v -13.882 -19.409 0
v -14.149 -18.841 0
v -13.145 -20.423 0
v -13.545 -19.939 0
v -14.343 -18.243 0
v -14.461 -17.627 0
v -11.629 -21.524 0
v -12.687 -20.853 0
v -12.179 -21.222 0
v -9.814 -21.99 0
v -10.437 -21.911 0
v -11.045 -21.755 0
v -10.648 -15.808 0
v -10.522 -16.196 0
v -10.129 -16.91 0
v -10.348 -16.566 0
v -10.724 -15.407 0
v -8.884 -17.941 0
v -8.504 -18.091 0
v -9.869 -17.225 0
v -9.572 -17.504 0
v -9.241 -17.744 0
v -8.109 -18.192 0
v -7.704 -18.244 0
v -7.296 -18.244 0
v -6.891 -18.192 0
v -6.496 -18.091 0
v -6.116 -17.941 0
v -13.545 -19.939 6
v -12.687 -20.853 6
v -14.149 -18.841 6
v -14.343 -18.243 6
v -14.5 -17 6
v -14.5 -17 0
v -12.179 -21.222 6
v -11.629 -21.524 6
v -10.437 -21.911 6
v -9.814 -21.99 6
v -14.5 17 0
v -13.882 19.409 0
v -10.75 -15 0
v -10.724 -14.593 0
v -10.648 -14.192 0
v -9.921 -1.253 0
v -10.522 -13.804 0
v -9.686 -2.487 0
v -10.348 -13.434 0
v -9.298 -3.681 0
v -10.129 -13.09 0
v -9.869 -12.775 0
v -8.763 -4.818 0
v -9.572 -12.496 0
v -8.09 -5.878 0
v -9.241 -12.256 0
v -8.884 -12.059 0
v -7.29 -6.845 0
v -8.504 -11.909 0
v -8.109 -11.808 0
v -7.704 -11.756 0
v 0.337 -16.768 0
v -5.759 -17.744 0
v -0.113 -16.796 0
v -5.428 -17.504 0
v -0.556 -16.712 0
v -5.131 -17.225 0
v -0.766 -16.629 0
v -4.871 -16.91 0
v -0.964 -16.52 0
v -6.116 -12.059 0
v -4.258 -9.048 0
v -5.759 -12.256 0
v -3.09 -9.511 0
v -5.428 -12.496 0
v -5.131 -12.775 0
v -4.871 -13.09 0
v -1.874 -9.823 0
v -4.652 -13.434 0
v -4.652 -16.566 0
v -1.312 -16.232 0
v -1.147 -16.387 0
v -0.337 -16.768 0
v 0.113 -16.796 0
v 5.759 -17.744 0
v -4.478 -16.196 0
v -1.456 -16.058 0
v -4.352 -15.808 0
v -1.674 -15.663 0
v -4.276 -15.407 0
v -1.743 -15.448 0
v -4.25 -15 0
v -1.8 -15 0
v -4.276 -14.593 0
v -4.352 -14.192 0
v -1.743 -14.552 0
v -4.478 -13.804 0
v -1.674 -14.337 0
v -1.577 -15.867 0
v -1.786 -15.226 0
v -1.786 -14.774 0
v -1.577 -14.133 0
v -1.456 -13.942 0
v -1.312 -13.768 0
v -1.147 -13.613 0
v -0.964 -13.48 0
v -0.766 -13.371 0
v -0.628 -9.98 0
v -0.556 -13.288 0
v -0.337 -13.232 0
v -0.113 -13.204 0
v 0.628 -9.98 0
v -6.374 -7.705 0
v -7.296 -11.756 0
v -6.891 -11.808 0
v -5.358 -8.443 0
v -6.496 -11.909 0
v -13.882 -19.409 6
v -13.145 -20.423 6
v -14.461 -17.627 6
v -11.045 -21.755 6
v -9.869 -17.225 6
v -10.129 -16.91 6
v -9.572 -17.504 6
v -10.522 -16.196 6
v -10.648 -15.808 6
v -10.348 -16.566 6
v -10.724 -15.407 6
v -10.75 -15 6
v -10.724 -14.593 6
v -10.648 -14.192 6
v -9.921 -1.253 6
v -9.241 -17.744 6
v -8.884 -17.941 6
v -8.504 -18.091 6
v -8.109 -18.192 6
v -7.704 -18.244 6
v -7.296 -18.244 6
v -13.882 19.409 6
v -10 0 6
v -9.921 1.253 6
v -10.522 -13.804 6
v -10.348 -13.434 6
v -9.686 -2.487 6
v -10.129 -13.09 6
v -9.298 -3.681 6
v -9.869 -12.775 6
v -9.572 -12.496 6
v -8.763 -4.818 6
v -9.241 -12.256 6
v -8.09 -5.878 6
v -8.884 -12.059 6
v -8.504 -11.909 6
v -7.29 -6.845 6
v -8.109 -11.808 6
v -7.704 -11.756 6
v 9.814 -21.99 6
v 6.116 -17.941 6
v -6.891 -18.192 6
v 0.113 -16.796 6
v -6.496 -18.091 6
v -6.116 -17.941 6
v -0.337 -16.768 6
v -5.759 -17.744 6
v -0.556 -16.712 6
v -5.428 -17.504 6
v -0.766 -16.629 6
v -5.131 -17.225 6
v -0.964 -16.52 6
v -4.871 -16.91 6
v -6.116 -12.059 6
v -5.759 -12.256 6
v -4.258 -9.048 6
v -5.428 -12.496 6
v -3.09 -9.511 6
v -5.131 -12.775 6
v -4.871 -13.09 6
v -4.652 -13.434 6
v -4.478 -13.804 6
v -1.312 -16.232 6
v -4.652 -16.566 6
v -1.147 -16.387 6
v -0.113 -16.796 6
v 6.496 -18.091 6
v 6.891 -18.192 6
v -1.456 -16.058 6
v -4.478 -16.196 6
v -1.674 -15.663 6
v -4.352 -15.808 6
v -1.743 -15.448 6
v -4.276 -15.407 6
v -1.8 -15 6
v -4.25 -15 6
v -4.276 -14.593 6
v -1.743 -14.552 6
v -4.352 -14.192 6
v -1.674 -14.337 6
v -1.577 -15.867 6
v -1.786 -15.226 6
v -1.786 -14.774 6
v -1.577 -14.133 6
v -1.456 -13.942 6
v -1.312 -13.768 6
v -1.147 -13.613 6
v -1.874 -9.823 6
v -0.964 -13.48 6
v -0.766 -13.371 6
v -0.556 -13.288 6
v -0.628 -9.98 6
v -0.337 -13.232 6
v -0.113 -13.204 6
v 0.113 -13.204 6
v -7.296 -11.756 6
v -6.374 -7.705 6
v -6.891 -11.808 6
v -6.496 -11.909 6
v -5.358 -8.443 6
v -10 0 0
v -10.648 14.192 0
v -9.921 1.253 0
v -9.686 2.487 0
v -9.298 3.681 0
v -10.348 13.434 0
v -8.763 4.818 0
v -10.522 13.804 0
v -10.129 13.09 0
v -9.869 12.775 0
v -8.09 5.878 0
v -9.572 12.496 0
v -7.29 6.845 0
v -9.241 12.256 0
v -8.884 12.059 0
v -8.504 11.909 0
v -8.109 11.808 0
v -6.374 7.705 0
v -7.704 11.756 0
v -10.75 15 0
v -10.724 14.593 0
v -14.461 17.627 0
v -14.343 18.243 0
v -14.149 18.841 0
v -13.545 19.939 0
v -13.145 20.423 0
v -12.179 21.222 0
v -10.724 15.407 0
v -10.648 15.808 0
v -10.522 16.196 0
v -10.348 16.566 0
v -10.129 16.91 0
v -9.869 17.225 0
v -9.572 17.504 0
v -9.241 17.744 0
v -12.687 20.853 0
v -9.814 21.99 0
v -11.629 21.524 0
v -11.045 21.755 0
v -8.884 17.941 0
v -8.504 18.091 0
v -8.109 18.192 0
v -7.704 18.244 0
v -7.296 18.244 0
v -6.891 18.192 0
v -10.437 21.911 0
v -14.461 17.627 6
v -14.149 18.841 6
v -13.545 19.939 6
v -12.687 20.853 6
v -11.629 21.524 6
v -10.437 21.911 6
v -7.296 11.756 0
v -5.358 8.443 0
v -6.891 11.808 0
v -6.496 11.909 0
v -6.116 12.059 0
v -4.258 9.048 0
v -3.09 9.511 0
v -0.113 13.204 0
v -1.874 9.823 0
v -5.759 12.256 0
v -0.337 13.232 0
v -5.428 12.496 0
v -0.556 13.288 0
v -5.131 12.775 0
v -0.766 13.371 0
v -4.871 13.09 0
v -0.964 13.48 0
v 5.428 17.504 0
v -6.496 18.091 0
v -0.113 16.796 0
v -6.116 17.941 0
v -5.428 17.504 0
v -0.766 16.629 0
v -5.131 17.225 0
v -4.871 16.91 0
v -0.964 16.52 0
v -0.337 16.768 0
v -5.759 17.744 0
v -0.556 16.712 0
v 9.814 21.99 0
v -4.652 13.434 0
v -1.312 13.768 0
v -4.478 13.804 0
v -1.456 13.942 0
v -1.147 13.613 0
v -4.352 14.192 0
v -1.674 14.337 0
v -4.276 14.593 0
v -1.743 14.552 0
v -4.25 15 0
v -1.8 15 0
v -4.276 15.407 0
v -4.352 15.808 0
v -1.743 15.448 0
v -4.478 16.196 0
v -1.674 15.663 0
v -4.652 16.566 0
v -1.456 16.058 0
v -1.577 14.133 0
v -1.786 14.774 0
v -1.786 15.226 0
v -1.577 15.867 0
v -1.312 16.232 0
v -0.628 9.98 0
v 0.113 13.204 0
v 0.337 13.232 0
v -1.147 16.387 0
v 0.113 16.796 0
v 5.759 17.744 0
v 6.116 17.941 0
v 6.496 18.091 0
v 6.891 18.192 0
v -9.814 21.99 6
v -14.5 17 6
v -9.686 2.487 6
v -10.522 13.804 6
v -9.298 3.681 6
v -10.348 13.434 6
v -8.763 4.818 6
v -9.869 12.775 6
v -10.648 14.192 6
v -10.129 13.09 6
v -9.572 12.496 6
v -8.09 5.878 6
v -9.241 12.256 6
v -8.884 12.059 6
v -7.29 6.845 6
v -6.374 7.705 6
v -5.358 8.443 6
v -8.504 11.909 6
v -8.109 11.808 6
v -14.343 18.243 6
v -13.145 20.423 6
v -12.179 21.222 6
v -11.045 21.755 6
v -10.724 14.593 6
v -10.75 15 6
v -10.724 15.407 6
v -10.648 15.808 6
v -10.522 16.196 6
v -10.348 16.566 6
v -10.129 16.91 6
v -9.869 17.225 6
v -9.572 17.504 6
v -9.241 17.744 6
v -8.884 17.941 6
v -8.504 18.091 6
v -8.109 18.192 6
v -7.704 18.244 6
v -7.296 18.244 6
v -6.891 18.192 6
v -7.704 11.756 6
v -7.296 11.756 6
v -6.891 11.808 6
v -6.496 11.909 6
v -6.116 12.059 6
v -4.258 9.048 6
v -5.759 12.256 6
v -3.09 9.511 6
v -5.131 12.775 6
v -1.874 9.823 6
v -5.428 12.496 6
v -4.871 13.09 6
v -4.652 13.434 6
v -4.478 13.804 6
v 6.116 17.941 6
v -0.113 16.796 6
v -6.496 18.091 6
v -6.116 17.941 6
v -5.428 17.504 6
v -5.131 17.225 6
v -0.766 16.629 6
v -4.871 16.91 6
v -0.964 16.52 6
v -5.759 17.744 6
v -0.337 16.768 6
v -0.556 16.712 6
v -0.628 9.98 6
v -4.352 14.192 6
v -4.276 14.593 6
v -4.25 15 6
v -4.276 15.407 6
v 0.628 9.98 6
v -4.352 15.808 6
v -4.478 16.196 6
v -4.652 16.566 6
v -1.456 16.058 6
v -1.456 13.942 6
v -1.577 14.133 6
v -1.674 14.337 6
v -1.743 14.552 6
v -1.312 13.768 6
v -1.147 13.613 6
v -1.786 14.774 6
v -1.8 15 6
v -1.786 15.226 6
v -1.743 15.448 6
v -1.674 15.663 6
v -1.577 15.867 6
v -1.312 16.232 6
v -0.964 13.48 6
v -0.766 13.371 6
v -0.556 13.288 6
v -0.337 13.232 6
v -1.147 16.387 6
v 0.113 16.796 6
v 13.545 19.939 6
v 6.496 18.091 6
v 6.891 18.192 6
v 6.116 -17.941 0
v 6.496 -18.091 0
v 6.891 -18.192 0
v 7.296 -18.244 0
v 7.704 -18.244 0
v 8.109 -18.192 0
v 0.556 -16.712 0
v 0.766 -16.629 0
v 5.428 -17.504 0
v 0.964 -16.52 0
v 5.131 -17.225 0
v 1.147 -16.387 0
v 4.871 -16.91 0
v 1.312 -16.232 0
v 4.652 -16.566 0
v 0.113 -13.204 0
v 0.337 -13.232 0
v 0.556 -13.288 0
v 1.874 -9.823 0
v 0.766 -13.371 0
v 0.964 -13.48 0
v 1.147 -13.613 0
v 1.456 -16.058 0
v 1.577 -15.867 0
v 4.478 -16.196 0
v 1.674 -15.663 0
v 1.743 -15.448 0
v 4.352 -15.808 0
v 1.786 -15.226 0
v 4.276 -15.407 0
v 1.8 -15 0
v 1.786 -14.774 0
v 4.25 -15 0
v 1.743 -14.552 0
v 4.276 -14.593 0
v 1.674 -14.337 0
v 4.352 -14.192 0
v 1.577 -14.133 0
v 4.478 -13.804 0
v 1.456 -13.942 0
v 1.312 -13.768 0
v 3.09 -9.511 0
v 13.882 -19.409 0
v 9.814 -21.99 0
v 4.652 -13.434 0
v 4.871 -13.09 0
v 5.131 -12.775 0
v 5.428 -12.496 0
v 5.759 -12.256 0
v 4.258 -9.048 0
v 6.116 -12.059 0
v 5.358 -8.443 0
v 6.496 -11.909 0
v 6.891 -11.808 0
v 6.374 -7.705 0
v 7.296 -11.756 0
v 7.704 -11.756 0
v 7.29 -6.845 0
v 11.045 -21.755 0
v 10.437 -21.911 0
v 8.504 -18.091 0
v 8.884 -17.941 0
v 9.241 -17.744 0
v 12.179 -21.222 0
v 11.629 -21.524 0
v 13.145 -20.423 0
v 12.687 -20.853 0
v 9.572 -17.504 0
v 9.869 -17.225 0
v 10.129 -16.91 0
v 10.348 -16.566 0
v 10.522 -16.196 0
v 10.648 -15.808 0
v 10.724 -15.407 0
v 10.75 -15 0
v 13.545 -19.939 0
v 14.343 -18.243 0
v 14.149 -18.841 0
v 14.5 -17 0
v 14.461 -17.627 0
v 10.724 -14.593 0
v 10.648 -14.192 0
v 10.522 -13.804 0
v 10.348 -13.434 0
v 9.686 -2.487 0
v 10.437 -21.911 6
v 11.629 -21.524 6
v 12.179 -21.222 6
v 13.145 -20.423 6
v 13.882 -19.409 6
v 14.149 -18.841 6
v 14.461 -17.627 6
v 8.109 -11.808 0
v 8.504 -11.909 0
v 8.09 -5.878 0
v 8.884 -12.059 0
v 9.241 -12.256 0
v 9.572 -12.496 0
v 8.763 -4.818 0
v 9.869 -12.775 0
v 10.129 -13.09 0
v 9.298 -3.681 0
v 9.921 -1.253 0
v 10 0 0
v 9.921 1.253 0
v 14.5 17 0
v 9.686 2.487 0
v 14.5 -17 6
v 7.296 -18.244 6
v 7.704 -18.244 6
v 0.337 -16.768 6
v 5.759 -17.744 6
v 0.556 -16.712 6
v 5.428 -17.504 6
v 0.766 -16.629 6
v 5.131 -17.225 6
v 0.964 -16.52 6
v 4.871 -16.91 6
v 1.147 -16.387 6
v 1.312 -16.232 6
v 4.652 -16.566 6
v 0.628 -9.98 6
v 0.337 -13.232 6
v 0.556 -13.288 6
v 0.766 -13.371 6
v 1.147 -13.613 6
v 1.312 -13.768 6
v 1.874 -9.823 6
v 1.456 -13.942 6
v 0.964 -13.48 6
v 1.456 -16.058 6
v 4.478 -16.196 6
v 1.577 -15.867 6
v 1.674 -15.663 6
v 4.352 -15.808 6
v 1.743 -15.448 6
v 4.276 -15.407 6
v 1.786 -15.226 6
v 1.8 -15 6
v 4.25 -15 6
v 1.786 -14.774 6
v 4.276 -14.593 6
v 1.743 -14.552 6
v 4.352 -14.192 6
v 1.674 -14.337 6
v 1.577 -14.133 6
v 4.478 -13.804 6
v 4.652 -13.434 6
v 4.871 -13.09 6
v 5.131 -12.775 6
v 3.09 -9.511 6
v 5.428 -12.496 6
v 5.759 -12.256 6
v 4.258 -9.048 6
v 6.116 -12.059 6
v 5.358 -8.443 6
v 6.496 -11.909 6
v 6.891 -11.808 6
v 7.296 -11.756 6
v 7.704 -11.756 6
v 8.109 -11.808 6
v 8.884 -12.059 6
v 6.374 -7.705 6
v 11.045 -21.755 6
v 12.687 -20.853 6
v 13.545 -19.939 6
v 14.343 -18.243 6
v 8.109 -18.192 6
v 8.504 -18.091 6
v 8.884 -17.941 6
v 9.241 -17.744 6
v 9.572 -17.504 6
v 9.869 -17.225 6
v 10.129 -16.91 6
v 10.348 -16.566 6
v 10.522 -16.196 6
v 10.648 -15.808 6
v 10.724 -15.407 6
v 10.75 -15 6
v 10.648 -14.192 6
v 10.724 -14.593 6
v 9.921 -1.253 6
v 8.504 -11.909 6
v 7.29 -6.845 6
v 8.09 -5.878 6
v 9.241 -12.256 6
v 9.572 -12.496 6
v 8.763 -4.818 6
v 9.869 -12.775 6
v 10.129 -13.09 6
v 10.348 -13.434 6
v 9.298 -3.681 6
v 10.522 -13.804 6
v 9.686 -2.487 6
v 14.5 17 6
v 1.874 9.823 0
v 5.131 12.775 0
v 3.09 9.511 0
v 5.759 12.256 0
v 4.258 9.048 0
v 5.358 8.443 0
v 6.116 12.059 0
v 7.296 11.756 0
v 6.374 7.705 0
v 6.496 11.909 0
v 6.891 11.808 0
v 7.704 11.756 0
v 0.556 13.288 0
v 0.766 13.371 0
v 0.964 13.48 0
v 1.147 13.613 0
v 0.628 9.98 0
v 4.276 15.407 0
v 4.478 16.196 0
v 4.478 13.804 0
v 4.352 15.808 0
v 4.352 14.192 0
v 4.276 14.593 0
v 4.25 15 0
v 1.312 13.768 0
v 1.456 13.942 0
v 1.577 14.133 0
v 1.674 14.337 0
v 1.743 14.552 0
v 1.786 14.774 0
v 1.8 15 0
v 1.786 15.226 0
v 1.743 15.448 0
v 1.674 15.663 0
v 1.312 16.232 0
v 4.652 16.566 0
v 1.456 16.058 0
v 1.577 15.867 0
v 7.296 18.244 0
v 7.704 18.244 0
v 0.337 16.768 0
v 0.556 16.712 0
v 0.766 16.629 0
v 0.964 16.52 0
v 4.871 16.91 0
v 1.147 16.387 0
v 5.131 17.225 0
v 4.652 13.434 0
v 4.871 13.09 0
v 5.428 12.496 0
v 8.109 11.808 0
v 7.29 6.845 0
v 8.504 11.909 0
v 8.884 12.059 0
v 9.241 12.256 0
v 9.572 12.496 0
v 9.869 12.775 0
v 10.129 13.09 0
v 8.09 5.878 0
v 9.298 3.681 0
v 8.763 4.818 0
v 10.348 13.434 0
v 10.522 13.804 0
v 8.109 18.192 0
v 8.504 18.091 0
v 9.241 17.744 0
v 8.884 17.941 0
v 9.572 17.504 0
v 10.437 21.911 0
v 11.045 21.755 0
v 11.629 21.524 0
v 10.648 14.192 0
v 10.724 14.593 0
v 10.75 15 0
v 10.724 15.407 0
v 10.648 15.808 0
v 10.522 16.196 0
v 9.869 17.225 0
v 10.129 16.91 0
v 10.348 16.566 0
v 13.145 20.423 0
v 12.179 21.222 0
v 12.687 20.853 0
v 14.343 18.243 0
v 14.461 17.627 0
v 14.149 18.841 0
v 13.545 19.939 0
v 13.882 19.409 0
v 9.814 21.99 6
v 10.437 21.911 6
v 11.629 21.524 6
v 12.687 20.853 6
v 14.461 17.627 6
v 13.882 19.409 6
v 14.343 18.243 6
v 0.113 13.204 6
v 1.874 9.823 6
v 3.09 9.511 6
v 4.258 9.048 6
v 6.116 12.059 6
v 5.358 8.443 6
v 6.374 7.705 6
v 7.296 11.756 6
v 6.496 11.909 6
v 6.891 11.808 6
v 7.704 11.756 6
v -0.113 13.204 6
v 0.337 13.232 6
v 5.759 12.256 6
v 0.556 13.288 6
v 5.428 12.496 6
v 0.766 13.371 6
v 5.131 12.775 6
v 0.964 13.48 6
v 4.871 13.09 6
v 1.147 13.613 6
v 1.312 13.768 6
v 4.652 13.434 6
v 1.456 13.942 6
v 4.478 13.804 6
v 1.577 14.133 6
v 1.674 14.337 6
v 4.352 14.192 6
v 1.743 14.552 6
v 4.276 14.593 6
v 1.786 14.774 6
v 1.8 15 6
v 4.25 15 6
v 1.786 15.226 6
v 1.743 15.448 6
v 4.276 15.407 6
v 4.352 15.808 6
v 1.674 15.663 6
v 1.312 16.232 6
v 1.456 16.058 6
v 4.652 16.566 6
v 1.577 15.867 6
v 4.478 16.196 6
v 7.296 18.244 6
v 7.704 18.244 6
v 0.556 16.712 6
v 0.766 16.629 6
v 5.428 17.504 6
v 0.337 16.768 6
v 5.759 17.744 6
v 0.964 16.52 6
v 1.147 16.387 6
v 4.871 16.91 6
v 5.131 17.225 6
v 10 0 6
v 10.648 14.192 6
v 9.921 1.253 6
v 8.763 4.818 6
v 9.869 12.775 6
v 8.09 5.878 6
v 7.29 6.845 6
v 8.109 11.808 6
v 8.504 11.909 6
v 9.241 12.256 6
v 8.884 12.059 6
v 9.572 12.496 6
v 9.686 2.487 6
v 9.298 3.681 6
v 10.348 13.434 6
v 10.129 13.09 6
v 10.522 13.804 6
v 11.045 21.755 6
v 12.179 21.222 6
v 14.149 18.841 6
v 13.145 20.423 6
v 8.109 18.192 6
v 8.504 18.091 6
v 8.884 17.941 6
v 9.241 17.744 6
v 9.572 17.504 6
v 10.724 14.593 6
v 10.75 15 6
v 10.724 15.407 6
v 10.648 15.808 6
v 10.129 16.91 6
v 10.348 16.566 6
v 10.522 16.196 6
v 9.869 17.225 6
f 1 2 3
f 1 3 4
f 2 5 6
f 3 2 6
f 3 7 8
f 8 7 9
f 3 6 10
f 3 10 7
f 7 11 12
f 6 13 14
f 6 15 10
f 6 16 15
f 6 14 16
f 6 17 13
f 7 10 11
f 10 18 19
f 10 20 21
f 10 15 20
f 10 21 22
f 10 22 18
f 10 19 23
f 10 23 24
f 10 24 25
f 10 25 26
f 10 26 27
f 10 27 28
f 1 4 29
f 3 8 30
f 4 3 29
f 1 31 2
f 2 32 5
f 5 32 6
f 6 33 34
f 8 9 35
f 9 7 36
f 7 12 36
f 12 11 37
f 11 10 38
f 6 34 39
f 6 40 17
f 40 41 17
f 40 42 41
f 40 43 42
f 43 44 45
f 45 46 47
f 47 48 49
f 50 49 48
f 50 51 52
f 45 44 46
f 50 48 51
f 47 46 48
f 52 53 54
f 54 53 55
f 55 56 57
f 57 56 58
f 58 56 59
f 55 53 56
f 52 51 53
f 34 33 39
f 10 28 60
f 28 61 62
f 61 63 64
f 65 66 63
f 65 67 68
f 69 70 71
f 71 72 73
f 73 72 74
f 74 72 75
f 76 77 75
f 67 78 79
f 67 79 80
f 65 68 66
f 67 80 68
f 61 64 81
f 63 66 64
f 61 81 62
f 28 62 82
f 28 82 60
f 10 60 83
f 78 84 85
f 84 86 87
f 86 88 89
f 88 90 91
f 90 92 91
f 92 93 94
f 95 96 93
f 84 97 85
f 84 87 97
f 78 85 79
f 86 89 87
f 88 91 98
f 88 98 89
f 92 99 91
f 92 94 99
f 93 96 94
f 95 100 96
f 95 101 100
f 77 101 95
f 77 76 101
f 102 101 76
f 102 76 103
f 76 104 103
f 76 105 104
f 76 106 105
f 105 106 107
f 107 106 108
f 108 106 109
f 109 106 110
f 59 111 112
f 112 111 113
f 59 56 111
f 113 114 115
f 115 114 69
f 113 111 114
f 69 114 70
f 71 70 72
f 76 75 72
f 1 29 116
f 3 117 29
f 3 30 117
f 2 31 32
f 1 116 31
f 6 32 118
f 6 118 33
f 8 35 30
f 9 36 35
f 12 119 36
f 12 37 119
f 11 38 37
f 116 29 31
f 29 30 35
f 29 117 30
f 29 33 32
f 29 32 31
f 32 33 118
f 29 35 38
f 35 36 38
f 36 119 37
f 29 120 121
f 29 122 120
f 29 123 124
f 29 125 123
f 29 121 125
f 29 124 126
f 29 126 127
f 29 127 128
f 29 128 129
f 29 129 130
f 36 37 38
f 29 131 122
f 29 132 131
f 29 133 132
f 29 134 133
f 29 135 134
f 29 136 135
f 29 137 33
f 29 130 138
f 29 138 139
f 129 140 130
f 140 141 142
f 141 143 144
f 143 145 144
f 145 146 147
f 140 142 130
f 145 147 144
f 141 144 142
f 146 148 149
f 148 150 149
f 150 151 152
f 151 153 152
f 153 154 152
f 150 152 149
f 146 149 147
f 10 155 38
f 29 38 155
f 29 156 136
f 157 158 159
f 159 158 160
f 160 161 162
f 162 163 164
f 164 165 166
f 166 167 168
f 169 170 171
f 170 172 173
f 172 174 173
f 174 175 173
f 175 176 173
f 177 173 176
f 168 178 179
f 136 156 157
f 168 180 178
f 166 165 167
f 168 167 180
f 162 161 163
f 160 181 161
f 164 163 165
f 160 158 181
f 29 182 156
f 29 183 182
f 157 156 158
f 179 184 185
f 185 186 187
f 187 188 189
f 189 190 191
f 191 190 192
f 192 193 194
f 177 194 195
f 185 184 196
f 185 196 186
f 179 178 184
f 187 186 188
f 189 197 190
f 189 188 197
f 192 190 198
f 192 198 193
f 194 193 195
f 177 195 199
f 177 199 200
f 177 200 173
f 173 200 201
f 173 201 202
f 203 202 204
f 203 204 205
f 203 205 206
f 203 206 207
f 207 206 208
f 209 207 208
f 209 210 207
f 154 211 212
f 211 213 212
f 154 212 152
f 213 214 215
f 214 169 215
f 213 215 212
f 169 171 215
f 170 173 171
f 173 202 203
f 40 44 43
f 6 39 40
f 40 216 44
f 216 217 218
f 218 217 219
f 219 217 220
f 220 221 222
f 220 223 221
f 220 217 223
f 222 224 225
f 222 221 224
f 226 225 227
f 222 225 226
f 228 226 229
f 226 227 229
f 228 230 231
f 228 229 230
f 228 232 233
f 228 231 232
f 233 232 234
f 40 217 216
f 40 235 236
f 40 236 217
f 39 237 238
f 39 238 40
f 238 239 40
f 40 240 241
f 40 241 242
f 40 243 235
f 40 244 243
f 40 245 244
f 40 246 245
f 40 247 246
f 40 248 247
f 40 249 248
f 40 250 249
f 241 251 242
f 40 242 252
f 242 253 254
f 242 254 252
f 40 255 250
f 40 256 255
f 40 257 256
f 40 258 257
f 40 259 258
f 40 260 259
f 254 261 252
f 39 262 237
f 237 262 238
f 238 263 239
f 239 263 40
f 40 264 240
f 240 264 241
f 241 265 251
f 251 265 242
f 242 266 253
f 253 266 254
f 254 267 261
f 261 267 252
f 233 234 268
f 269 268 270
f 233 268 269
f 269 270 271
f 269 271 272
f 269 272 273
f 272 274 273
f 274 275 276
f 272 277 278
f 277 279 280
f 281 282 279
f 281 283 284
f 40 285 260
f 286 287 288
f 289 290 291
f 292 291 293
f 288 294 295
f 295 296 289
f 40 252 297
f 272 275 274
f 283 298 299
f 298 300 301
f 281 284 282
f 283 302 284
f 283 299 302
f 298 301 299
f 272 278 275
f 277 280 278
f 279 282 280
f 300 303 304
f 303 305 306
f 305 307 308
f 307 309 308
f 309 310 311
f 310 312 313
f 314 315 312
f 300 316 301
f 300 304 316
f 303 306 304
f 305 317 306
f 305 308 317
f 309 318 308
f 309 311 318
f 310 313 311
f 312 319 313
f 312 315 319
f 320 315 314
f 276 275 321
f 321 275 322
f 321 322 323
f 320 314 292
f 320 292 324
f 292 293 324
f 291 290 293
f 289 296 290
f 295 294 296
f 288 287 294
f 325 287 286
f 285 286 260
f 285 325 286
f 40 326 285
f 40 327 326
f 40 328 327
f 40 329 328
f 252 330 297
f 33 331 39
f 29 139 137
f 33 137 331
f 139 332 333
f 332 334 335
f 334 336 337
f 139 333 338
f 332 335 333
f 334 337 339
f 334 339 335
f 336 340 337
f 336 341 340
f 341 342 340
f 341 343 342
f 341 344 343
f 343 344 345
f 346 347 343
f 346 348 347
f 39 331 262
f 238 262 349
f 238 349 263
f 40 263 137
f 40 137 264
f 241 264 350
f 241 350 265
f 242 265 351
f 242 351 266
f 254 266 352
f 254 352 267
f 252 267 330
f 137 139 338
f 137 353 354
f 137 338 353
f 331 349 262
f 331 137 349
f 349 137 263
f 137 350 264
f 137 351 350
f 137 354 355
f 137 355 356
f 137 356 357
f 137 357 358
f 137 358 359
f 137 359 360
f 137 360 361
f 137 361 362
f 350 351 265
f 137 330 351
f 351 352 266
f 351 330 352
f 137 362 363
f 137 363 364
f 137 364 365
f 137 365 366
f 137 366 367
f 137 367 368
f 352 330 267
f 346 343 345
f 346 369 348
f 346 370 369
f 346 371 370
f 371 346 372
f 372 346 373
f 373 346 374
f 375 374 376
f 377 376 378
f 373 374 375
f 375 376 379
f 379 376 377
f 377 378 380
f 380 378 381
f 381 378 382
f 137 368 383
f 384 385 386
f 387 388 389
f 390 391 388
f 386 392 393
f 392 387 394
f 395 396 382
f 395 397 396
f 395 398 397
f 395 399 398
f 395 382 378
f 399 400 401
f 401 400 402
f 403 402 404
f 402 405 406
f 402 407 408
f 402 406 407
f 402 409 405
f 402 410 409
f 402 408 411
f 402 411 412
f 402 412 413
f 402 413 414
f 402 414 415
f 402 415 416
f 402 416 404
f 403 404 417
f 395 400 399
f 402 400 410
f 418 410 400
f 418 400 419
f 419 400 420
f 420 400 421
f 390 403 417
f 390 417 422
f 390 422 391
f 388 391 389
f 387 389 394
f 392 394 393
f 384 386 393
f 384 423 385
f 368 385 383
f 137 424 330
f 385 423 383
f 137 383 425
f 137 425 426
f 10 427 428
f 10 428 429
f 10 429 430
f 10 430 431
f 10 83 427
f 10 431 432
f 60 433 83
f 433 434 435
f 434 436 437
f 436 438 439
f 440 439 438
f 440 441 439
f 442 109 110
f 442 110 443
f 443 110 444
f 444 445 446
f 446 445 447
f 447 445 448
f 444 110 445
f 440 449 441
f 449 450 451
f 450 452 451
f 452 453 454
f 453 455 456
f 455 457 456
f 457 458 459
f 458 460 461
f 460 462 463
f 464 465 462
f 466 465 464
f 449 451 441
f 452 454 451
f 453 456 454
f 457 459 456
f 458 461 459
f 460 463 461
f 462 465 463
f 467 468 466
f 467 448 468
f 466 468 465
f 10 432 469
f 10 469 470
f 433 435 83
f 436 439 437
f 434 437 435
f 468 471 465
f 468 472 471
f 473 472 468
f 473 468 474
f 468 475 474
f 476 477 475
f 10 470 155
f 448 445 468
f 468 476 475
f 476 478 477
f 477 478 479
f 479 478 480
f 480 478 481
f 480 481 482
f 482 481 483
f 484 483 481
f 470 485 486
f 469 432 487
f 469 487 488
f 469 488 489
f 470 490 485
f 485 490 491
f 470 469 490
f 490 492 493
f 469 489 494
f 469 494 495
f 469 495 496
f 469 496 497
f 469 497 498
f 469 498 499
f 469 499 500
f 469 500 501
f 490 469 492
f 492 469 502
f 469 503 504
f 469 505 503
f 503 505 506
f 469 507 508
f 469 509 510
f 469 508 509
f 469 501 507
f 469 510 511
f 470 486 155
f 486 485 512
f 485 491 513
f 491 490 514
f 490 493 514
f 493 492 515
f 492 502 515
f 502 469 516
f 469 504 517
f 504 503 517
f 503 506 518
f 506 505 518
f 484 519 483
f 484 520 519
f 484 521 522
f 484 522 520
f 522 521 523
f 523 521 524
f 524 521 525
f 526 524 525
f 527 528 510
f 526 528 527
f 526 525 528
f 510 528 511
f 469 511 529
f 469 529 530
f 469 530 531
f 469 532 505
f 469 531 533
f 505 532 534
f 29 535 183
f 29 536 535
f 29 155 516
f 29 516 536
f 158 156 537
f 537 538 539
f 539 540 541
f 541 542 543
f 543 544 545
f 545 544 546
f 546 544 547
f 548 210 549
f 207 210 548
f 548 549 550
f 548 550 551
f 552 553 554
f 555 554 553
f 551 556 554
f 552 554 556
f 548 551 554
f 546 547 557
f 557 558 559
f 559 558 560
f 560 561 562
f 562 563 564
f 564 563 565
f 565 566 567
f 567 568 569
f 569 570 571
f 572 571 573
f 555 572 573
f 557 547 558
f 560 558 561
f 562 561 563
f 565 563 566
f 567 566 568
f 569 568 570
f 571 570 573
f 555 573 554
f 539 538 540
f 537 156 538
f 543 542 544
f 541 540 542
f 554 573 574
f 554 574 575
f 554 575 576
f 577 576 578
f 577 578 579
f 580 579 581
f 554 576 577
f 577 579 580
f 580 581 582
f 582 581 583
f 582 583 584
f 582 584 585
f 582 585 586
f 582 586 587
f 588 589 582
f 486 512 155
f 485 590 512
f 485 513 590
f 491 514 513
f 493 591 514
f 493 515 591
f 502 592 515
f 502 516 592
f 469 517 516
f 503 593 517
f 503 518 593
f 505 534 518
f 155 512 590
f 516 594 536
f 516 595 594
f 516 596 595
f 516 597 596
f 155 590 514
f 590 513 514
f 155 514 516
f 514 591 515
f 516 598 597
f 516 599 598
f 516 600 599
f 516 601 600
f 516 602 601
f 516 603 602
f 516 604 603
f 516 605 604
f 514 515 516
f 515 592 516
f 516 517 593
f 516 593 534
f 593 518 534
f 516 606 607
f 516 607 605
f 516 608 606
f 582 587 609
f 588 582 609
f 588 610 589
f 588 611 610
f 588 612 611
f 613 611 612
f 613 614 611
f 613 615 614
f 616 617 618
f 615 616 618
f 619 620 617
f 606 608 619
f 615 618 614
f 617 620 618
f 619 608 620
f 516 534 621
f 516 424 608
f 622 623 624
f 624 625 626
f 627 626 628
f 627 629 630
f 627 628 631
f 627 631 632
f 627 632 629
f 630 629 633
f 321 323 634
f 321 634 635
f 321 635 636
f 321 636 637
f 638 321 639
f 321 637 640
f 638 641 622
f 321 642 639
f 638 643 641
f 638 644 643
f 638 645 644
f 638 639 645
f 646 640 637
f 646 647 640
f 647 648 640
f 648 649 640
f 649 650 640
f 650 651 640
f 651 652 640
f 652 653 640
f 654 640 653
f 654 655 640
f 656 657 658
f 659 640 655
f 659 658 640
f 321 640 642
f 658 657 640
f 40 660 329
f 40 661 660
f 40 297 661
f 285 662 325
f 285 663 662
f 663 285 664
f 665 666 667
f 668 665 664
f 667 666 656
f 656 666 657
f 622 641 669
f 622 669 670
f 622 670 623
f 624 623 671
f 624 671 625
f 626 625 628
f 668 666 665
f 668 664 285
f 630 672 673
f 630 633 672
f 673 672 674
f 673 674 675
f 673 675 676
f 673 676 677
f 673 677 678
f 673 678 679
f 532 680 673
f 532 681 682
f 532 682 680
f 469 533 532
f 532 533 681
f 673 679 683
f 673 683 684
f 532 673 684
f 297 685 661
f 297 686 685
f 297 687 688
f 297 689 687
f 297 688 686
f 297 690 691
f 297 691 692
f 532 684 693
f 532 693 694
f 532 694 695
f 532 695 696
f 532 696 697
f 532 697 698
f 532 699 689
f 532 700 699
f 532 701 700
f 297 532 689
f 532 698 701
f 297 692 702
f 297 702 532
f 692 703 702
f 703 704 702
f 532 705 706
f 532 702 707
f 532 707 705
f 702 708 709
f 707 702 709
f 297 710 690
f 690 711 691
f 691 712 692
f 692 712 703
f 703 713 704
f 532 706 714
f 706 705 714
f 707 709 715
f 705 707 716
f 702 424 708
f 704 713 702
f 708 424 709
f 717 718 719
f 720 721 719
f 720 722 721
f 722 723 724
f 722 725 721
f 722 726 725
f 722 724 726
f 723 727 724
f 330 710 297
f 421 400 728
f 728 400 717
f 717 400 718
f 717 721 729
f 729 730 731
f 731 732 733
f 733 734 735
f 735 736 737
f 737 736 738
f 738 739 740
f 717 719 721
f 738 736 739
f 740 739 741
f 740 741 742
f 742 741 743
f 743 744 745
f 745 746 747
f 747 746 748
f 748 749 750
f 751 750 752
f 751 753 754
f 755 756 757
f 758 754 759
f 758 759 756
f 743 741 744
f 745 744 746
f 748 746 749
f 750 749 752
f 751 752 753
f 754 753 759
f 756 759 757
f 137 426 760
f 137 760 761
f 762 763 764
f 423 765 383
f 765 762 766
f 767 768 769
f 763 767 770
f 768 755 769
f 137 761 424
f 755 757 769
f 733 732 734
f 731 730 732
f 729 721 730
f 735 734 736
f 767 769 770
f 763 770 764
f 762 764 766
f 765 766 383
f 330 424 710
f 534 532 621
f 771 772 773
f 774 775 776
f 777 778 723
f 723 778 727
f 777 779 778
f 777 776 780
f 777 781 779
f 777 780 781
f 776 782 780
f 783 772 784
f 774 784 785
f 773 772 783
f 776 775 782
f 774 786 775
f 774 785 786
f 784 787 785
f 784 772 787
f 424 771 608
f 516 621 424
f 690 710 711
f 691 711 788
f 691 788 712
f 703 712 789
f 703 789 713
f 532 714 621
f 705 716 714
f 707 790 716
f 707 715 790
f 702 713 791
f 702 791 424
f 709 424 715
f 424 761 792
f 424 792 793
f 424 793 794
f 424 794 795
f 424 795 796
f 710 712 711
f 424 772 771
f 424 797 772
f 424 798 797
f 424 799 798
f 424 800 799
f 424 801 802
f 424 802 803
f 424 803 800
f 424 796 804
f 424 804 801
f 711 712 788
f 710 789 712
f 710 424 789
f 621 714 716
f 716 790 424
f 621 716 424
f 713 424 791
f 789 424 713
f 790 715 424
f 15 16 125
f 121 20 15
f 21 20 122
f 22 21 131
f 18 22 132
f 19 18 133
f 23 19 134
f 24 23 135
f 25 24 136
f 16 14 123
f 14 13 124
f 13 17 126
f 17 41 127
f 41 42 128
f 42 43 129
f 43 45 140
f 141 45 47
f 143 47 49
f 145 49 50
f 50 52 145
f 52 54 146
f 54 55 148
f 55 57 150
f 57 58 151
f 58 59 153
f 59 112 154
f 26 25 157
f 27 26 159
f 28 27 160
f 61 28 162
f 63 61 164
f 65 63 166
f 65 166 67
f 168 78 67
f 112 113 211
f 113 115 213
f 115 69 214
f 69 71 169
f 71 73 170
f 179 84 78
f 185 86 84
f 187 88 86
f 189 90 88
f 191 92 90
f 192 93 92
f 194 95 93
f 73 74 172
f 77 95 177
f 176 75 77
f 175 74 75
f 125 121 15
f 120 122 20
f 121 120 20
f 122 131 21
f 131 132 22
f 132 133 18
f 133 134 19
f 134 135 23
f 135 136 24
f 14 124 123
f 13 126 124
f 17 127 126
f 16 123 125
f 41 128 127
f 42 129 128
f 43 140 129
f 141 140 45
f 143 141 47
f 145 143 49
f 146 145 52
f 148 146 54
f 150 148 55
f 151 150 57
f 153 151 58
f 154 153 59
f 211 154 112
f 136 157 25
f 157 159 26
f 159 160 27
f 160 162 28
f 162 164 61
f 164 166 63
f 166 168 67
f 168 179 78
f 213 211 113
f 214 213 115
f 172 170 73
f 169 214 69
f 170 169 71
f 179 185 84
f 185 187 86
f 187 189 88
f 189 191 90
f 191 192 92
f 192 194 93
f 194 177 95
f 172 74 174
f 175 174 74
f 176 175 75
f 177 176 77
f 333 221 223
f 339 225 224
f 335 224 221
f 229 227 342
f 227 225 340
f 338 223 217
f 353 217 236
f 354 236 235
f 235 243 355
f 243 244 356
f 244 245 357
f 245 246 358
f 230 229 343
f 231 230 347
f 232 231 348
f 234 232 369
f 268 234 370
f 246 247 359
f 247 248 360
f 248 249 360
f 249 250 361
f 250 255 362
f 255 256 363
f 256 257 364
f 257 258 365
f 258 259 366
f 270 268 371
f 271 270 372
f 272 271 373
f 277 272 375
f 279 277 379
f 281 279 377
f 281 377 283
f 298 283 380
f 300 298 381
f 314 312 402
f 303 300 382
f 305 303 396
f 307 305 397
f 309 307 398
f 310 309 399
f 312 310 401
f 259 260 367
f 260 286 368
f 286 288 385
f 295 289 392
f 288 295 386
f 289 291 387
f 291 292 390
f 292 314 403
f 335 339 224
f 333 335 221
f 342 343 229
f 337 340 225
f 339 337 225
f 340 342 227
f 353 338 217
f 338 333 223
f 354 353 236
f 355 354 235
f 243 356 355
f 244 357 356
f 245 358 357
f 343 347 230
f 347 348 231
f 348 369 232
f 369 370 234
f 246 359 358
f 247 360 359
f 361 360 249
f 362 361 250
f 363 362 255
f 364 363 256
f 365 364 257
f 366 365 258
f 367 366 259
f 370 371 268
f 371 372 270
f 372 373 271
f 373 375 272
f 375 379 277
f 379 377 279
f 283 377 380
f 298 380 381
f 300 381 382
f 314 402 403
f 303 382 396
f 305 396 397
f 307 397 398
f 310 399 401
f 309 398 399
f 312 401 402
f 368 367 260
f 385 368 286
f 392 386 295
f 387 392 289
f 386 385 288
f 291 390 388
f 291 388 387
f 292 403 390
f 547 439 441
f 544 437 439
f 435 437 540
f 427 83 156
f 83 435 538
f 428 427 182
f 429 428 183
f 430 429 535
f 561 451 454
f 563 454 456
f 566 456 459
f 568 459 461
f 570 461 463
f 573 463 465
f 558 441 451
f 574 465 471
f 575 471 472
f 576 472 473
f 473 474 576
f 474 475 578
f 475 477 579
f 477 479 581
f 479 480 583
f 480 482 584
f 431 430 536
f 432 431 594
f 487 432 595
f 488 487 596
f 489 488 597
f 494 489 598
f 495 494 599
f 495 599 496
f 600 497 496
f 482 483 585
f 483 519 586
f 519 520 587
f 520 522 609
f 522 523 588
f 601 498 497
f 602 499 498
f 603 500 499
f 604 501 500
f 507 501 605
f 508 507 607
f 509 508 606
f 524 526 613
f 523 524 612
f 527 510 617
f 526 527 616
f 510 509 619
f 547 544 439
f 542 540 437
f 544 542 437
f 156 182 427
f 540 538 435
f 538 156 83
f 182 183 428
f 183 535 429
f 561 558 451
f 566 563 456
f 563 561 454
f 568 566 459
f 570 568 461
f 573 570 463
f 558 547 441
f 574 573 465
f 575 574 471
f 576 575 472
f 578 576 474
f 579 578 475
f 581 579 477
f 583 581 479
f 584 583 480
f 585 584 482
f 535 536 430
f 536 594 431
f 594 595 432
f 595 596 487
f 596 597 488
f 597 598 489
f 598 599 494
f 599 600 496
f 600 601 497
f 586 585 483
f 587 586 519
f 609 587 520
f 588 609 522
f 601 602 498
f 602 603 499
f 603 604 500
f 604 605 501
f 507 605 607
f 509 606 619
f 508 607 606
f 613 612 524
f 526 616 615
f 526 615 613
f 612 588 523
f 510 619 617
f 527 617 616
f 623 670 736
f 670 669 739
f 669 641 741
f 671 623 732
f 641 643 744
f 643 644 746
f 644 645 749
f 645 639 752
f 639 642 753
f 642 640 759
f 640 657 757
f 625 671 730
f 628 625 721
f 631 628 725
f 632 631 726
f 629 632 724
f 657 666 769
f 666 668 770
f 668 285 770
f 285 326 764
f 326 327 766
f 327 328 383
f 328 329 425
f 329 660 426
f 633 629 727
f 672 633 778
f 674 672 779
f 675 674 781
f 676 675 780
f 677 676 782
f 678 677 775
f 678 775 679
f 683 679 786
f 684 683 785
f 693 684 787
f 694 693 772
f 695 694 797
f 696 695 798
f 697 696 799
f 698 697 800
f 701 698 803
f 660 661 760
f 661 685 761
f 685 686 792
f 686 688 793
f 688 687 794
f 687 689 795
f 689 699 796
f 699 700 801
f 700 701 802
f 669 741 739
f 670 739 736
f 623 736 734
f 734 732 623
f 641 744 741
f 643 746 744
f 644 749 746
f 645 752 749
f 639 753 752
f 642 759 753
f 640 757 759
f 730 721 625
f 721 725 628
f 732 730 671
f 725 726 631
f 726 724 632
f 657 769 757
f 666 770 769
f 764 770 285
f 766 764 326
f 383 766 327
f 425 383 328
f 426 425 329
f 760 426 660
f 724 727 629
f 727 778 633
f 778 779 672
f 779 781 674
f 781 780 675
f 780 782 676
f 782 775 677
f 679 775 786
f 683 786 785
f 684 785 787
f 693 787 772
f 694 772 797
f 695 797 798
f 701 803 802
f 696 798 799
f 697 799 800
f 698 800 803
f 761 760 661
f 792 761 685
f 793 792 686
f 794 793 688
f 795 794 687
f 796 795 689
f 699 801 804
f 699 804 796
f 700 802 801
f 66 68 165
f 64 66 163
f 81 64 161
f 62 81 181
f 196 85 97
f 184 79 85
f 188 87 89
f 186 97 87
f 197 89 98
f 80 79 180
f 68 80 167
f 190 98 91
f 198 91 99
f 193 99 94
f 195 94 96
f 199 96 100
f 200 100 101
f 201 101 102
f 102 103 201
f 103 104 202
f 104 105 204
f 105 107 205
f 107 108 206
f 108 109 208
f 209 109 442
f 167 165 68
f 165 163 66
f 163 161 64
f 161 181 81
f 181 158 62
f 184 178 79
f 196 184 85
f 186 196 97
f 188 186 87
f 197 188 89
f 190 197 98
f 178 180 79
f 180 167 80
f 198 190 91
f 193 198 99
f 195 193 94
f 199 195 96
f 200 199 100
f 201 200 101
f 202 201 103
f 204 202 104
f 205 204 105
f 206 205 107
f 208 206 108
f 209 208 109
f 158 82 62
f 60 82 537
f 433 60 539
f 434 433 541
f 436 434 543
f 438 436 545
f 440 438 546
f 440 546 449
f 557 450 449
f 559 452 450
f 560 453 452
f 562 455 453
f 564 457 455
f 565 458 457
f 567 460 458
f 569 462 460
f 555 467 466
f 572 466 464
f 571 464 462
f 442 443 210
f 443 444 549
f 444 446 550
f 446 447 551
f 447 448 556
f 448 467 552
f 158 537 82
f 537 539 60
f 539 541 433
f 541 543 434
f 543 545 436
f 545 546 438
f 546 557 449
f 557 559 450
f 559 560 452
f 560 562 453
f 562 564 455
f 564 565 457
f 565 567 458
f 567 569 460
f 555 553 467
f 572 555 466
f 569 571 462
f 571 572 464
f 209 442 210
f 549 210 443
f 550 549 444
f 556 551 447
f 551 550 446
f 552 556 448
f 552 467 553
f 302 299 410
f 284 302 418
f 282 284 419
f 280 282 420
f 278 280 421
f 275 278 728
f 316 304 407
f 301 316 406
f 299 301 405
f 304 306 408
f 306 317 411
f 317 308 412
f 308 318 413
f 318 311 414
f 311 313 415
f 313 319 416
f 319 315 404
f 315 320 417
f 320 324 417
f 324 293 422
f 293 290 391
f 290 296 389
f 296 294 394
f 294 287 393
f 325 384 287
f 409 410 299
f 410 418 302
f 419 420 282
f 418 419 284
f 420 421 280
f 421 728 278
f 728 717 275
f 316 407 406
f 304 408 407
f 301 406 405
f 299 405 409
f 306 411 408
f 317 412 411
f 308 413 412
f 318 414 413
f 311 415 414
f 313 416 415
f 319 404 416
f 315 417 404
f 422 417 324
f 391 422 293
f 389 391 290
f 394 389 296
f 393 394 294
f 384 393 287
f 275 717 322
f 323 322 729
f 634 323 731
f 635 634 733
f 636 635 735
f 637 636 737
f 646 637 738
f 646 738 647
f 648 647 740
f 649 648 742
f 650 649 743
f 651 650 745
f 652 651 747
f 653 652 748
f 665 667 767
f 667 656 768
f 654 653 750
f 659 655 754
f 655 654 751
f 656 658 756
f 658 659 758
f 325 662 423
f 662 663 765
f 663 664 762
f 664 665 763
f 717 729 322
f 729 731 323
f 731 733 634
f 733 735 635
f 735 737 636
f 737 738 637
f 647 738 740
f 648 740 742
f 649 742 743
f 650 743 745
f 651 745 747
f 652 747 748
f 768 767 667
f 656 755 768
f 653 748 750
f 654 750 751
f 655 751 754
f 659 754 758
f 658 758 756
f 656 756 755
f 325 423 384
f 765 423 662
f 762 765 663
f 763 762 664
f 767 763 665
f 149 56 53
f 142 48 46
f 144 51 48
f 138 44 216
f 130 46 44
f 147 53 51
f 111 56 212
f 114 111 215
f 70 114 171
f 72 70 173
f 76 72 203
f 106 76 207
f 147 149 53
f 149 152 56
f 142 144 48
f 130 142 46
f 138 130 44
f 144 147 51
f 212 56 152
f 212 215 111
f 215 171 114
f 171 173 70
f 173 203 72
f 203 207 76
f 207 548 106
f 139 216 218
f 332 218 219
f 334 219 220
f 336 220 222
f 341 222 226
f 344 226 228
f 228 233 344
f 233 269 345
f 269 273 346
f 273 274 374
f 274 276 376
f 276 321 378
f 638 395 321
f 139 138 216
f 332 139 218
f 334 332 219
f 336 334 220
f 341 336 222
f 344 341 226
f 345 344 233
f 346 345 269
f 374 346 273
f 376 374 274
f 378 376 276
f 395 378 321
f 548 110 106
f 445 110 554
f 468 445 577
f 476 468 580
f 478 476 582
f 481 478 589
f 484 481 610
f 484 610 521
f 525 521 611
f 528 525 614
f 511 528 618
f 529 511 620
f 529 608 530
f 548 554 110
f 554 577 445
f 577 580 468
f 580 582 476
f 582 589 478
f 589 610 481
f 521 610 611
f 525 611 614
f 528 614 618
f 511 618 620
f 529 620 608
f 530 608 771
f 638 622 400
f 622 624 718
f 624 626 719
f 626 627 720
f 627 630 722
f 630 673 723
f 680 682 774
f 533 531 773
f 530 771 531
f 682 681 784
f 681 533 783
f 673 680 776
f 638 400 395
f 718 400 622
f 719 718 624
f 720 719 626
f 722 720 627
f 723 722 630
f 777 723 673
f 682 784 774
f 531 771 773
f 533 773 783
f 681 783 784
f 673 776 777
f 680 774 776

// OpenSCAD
$fn = 50;

difference() {
	union() {
		hull() {
			translate(v = [-9.5, 17.0, 0]) {
				cylinder(h = 6, r = 5);
			}
			translate(v = [9.5, 17.0, 0]) {
				cylinder(h = 6, r = 5);
			}
			translate(v = [-9.5, -17.0, 0]) {
				cylinder(h = 6, r = 5);
			}
			translate(v = [9.5, -17.0, 0]) {
				cylinder(h = 6, r = 5);
			}
		}
	}
	union() {
		translate(v = [-7.5, -15.0, 0]) {
			cylinder(h = 6, r = 3.25);
		}
		translate(v = [-7.5, 15.0, 0]) {
			cylinder(h = 6, r = 3.25);
		}
		translate(v = [7.5, -15.0, 0]) {
			cylinder(h = 6, r = 3.25);
		}
		translate(v = [7.5, 15.0, 0]) {
			cylinder(h = 6, r = 3.25);
		}
		translate(v = [0.0, -15.0, 0]) {
			cylinder(h = 6, r = 1.8);
		}
		translate(v = [0.0, 15.0, 0]) {
			cylinder(h = 6, r = 1.8);
		}
		cylinder(h = 6, r = 10.0);
	}
}
